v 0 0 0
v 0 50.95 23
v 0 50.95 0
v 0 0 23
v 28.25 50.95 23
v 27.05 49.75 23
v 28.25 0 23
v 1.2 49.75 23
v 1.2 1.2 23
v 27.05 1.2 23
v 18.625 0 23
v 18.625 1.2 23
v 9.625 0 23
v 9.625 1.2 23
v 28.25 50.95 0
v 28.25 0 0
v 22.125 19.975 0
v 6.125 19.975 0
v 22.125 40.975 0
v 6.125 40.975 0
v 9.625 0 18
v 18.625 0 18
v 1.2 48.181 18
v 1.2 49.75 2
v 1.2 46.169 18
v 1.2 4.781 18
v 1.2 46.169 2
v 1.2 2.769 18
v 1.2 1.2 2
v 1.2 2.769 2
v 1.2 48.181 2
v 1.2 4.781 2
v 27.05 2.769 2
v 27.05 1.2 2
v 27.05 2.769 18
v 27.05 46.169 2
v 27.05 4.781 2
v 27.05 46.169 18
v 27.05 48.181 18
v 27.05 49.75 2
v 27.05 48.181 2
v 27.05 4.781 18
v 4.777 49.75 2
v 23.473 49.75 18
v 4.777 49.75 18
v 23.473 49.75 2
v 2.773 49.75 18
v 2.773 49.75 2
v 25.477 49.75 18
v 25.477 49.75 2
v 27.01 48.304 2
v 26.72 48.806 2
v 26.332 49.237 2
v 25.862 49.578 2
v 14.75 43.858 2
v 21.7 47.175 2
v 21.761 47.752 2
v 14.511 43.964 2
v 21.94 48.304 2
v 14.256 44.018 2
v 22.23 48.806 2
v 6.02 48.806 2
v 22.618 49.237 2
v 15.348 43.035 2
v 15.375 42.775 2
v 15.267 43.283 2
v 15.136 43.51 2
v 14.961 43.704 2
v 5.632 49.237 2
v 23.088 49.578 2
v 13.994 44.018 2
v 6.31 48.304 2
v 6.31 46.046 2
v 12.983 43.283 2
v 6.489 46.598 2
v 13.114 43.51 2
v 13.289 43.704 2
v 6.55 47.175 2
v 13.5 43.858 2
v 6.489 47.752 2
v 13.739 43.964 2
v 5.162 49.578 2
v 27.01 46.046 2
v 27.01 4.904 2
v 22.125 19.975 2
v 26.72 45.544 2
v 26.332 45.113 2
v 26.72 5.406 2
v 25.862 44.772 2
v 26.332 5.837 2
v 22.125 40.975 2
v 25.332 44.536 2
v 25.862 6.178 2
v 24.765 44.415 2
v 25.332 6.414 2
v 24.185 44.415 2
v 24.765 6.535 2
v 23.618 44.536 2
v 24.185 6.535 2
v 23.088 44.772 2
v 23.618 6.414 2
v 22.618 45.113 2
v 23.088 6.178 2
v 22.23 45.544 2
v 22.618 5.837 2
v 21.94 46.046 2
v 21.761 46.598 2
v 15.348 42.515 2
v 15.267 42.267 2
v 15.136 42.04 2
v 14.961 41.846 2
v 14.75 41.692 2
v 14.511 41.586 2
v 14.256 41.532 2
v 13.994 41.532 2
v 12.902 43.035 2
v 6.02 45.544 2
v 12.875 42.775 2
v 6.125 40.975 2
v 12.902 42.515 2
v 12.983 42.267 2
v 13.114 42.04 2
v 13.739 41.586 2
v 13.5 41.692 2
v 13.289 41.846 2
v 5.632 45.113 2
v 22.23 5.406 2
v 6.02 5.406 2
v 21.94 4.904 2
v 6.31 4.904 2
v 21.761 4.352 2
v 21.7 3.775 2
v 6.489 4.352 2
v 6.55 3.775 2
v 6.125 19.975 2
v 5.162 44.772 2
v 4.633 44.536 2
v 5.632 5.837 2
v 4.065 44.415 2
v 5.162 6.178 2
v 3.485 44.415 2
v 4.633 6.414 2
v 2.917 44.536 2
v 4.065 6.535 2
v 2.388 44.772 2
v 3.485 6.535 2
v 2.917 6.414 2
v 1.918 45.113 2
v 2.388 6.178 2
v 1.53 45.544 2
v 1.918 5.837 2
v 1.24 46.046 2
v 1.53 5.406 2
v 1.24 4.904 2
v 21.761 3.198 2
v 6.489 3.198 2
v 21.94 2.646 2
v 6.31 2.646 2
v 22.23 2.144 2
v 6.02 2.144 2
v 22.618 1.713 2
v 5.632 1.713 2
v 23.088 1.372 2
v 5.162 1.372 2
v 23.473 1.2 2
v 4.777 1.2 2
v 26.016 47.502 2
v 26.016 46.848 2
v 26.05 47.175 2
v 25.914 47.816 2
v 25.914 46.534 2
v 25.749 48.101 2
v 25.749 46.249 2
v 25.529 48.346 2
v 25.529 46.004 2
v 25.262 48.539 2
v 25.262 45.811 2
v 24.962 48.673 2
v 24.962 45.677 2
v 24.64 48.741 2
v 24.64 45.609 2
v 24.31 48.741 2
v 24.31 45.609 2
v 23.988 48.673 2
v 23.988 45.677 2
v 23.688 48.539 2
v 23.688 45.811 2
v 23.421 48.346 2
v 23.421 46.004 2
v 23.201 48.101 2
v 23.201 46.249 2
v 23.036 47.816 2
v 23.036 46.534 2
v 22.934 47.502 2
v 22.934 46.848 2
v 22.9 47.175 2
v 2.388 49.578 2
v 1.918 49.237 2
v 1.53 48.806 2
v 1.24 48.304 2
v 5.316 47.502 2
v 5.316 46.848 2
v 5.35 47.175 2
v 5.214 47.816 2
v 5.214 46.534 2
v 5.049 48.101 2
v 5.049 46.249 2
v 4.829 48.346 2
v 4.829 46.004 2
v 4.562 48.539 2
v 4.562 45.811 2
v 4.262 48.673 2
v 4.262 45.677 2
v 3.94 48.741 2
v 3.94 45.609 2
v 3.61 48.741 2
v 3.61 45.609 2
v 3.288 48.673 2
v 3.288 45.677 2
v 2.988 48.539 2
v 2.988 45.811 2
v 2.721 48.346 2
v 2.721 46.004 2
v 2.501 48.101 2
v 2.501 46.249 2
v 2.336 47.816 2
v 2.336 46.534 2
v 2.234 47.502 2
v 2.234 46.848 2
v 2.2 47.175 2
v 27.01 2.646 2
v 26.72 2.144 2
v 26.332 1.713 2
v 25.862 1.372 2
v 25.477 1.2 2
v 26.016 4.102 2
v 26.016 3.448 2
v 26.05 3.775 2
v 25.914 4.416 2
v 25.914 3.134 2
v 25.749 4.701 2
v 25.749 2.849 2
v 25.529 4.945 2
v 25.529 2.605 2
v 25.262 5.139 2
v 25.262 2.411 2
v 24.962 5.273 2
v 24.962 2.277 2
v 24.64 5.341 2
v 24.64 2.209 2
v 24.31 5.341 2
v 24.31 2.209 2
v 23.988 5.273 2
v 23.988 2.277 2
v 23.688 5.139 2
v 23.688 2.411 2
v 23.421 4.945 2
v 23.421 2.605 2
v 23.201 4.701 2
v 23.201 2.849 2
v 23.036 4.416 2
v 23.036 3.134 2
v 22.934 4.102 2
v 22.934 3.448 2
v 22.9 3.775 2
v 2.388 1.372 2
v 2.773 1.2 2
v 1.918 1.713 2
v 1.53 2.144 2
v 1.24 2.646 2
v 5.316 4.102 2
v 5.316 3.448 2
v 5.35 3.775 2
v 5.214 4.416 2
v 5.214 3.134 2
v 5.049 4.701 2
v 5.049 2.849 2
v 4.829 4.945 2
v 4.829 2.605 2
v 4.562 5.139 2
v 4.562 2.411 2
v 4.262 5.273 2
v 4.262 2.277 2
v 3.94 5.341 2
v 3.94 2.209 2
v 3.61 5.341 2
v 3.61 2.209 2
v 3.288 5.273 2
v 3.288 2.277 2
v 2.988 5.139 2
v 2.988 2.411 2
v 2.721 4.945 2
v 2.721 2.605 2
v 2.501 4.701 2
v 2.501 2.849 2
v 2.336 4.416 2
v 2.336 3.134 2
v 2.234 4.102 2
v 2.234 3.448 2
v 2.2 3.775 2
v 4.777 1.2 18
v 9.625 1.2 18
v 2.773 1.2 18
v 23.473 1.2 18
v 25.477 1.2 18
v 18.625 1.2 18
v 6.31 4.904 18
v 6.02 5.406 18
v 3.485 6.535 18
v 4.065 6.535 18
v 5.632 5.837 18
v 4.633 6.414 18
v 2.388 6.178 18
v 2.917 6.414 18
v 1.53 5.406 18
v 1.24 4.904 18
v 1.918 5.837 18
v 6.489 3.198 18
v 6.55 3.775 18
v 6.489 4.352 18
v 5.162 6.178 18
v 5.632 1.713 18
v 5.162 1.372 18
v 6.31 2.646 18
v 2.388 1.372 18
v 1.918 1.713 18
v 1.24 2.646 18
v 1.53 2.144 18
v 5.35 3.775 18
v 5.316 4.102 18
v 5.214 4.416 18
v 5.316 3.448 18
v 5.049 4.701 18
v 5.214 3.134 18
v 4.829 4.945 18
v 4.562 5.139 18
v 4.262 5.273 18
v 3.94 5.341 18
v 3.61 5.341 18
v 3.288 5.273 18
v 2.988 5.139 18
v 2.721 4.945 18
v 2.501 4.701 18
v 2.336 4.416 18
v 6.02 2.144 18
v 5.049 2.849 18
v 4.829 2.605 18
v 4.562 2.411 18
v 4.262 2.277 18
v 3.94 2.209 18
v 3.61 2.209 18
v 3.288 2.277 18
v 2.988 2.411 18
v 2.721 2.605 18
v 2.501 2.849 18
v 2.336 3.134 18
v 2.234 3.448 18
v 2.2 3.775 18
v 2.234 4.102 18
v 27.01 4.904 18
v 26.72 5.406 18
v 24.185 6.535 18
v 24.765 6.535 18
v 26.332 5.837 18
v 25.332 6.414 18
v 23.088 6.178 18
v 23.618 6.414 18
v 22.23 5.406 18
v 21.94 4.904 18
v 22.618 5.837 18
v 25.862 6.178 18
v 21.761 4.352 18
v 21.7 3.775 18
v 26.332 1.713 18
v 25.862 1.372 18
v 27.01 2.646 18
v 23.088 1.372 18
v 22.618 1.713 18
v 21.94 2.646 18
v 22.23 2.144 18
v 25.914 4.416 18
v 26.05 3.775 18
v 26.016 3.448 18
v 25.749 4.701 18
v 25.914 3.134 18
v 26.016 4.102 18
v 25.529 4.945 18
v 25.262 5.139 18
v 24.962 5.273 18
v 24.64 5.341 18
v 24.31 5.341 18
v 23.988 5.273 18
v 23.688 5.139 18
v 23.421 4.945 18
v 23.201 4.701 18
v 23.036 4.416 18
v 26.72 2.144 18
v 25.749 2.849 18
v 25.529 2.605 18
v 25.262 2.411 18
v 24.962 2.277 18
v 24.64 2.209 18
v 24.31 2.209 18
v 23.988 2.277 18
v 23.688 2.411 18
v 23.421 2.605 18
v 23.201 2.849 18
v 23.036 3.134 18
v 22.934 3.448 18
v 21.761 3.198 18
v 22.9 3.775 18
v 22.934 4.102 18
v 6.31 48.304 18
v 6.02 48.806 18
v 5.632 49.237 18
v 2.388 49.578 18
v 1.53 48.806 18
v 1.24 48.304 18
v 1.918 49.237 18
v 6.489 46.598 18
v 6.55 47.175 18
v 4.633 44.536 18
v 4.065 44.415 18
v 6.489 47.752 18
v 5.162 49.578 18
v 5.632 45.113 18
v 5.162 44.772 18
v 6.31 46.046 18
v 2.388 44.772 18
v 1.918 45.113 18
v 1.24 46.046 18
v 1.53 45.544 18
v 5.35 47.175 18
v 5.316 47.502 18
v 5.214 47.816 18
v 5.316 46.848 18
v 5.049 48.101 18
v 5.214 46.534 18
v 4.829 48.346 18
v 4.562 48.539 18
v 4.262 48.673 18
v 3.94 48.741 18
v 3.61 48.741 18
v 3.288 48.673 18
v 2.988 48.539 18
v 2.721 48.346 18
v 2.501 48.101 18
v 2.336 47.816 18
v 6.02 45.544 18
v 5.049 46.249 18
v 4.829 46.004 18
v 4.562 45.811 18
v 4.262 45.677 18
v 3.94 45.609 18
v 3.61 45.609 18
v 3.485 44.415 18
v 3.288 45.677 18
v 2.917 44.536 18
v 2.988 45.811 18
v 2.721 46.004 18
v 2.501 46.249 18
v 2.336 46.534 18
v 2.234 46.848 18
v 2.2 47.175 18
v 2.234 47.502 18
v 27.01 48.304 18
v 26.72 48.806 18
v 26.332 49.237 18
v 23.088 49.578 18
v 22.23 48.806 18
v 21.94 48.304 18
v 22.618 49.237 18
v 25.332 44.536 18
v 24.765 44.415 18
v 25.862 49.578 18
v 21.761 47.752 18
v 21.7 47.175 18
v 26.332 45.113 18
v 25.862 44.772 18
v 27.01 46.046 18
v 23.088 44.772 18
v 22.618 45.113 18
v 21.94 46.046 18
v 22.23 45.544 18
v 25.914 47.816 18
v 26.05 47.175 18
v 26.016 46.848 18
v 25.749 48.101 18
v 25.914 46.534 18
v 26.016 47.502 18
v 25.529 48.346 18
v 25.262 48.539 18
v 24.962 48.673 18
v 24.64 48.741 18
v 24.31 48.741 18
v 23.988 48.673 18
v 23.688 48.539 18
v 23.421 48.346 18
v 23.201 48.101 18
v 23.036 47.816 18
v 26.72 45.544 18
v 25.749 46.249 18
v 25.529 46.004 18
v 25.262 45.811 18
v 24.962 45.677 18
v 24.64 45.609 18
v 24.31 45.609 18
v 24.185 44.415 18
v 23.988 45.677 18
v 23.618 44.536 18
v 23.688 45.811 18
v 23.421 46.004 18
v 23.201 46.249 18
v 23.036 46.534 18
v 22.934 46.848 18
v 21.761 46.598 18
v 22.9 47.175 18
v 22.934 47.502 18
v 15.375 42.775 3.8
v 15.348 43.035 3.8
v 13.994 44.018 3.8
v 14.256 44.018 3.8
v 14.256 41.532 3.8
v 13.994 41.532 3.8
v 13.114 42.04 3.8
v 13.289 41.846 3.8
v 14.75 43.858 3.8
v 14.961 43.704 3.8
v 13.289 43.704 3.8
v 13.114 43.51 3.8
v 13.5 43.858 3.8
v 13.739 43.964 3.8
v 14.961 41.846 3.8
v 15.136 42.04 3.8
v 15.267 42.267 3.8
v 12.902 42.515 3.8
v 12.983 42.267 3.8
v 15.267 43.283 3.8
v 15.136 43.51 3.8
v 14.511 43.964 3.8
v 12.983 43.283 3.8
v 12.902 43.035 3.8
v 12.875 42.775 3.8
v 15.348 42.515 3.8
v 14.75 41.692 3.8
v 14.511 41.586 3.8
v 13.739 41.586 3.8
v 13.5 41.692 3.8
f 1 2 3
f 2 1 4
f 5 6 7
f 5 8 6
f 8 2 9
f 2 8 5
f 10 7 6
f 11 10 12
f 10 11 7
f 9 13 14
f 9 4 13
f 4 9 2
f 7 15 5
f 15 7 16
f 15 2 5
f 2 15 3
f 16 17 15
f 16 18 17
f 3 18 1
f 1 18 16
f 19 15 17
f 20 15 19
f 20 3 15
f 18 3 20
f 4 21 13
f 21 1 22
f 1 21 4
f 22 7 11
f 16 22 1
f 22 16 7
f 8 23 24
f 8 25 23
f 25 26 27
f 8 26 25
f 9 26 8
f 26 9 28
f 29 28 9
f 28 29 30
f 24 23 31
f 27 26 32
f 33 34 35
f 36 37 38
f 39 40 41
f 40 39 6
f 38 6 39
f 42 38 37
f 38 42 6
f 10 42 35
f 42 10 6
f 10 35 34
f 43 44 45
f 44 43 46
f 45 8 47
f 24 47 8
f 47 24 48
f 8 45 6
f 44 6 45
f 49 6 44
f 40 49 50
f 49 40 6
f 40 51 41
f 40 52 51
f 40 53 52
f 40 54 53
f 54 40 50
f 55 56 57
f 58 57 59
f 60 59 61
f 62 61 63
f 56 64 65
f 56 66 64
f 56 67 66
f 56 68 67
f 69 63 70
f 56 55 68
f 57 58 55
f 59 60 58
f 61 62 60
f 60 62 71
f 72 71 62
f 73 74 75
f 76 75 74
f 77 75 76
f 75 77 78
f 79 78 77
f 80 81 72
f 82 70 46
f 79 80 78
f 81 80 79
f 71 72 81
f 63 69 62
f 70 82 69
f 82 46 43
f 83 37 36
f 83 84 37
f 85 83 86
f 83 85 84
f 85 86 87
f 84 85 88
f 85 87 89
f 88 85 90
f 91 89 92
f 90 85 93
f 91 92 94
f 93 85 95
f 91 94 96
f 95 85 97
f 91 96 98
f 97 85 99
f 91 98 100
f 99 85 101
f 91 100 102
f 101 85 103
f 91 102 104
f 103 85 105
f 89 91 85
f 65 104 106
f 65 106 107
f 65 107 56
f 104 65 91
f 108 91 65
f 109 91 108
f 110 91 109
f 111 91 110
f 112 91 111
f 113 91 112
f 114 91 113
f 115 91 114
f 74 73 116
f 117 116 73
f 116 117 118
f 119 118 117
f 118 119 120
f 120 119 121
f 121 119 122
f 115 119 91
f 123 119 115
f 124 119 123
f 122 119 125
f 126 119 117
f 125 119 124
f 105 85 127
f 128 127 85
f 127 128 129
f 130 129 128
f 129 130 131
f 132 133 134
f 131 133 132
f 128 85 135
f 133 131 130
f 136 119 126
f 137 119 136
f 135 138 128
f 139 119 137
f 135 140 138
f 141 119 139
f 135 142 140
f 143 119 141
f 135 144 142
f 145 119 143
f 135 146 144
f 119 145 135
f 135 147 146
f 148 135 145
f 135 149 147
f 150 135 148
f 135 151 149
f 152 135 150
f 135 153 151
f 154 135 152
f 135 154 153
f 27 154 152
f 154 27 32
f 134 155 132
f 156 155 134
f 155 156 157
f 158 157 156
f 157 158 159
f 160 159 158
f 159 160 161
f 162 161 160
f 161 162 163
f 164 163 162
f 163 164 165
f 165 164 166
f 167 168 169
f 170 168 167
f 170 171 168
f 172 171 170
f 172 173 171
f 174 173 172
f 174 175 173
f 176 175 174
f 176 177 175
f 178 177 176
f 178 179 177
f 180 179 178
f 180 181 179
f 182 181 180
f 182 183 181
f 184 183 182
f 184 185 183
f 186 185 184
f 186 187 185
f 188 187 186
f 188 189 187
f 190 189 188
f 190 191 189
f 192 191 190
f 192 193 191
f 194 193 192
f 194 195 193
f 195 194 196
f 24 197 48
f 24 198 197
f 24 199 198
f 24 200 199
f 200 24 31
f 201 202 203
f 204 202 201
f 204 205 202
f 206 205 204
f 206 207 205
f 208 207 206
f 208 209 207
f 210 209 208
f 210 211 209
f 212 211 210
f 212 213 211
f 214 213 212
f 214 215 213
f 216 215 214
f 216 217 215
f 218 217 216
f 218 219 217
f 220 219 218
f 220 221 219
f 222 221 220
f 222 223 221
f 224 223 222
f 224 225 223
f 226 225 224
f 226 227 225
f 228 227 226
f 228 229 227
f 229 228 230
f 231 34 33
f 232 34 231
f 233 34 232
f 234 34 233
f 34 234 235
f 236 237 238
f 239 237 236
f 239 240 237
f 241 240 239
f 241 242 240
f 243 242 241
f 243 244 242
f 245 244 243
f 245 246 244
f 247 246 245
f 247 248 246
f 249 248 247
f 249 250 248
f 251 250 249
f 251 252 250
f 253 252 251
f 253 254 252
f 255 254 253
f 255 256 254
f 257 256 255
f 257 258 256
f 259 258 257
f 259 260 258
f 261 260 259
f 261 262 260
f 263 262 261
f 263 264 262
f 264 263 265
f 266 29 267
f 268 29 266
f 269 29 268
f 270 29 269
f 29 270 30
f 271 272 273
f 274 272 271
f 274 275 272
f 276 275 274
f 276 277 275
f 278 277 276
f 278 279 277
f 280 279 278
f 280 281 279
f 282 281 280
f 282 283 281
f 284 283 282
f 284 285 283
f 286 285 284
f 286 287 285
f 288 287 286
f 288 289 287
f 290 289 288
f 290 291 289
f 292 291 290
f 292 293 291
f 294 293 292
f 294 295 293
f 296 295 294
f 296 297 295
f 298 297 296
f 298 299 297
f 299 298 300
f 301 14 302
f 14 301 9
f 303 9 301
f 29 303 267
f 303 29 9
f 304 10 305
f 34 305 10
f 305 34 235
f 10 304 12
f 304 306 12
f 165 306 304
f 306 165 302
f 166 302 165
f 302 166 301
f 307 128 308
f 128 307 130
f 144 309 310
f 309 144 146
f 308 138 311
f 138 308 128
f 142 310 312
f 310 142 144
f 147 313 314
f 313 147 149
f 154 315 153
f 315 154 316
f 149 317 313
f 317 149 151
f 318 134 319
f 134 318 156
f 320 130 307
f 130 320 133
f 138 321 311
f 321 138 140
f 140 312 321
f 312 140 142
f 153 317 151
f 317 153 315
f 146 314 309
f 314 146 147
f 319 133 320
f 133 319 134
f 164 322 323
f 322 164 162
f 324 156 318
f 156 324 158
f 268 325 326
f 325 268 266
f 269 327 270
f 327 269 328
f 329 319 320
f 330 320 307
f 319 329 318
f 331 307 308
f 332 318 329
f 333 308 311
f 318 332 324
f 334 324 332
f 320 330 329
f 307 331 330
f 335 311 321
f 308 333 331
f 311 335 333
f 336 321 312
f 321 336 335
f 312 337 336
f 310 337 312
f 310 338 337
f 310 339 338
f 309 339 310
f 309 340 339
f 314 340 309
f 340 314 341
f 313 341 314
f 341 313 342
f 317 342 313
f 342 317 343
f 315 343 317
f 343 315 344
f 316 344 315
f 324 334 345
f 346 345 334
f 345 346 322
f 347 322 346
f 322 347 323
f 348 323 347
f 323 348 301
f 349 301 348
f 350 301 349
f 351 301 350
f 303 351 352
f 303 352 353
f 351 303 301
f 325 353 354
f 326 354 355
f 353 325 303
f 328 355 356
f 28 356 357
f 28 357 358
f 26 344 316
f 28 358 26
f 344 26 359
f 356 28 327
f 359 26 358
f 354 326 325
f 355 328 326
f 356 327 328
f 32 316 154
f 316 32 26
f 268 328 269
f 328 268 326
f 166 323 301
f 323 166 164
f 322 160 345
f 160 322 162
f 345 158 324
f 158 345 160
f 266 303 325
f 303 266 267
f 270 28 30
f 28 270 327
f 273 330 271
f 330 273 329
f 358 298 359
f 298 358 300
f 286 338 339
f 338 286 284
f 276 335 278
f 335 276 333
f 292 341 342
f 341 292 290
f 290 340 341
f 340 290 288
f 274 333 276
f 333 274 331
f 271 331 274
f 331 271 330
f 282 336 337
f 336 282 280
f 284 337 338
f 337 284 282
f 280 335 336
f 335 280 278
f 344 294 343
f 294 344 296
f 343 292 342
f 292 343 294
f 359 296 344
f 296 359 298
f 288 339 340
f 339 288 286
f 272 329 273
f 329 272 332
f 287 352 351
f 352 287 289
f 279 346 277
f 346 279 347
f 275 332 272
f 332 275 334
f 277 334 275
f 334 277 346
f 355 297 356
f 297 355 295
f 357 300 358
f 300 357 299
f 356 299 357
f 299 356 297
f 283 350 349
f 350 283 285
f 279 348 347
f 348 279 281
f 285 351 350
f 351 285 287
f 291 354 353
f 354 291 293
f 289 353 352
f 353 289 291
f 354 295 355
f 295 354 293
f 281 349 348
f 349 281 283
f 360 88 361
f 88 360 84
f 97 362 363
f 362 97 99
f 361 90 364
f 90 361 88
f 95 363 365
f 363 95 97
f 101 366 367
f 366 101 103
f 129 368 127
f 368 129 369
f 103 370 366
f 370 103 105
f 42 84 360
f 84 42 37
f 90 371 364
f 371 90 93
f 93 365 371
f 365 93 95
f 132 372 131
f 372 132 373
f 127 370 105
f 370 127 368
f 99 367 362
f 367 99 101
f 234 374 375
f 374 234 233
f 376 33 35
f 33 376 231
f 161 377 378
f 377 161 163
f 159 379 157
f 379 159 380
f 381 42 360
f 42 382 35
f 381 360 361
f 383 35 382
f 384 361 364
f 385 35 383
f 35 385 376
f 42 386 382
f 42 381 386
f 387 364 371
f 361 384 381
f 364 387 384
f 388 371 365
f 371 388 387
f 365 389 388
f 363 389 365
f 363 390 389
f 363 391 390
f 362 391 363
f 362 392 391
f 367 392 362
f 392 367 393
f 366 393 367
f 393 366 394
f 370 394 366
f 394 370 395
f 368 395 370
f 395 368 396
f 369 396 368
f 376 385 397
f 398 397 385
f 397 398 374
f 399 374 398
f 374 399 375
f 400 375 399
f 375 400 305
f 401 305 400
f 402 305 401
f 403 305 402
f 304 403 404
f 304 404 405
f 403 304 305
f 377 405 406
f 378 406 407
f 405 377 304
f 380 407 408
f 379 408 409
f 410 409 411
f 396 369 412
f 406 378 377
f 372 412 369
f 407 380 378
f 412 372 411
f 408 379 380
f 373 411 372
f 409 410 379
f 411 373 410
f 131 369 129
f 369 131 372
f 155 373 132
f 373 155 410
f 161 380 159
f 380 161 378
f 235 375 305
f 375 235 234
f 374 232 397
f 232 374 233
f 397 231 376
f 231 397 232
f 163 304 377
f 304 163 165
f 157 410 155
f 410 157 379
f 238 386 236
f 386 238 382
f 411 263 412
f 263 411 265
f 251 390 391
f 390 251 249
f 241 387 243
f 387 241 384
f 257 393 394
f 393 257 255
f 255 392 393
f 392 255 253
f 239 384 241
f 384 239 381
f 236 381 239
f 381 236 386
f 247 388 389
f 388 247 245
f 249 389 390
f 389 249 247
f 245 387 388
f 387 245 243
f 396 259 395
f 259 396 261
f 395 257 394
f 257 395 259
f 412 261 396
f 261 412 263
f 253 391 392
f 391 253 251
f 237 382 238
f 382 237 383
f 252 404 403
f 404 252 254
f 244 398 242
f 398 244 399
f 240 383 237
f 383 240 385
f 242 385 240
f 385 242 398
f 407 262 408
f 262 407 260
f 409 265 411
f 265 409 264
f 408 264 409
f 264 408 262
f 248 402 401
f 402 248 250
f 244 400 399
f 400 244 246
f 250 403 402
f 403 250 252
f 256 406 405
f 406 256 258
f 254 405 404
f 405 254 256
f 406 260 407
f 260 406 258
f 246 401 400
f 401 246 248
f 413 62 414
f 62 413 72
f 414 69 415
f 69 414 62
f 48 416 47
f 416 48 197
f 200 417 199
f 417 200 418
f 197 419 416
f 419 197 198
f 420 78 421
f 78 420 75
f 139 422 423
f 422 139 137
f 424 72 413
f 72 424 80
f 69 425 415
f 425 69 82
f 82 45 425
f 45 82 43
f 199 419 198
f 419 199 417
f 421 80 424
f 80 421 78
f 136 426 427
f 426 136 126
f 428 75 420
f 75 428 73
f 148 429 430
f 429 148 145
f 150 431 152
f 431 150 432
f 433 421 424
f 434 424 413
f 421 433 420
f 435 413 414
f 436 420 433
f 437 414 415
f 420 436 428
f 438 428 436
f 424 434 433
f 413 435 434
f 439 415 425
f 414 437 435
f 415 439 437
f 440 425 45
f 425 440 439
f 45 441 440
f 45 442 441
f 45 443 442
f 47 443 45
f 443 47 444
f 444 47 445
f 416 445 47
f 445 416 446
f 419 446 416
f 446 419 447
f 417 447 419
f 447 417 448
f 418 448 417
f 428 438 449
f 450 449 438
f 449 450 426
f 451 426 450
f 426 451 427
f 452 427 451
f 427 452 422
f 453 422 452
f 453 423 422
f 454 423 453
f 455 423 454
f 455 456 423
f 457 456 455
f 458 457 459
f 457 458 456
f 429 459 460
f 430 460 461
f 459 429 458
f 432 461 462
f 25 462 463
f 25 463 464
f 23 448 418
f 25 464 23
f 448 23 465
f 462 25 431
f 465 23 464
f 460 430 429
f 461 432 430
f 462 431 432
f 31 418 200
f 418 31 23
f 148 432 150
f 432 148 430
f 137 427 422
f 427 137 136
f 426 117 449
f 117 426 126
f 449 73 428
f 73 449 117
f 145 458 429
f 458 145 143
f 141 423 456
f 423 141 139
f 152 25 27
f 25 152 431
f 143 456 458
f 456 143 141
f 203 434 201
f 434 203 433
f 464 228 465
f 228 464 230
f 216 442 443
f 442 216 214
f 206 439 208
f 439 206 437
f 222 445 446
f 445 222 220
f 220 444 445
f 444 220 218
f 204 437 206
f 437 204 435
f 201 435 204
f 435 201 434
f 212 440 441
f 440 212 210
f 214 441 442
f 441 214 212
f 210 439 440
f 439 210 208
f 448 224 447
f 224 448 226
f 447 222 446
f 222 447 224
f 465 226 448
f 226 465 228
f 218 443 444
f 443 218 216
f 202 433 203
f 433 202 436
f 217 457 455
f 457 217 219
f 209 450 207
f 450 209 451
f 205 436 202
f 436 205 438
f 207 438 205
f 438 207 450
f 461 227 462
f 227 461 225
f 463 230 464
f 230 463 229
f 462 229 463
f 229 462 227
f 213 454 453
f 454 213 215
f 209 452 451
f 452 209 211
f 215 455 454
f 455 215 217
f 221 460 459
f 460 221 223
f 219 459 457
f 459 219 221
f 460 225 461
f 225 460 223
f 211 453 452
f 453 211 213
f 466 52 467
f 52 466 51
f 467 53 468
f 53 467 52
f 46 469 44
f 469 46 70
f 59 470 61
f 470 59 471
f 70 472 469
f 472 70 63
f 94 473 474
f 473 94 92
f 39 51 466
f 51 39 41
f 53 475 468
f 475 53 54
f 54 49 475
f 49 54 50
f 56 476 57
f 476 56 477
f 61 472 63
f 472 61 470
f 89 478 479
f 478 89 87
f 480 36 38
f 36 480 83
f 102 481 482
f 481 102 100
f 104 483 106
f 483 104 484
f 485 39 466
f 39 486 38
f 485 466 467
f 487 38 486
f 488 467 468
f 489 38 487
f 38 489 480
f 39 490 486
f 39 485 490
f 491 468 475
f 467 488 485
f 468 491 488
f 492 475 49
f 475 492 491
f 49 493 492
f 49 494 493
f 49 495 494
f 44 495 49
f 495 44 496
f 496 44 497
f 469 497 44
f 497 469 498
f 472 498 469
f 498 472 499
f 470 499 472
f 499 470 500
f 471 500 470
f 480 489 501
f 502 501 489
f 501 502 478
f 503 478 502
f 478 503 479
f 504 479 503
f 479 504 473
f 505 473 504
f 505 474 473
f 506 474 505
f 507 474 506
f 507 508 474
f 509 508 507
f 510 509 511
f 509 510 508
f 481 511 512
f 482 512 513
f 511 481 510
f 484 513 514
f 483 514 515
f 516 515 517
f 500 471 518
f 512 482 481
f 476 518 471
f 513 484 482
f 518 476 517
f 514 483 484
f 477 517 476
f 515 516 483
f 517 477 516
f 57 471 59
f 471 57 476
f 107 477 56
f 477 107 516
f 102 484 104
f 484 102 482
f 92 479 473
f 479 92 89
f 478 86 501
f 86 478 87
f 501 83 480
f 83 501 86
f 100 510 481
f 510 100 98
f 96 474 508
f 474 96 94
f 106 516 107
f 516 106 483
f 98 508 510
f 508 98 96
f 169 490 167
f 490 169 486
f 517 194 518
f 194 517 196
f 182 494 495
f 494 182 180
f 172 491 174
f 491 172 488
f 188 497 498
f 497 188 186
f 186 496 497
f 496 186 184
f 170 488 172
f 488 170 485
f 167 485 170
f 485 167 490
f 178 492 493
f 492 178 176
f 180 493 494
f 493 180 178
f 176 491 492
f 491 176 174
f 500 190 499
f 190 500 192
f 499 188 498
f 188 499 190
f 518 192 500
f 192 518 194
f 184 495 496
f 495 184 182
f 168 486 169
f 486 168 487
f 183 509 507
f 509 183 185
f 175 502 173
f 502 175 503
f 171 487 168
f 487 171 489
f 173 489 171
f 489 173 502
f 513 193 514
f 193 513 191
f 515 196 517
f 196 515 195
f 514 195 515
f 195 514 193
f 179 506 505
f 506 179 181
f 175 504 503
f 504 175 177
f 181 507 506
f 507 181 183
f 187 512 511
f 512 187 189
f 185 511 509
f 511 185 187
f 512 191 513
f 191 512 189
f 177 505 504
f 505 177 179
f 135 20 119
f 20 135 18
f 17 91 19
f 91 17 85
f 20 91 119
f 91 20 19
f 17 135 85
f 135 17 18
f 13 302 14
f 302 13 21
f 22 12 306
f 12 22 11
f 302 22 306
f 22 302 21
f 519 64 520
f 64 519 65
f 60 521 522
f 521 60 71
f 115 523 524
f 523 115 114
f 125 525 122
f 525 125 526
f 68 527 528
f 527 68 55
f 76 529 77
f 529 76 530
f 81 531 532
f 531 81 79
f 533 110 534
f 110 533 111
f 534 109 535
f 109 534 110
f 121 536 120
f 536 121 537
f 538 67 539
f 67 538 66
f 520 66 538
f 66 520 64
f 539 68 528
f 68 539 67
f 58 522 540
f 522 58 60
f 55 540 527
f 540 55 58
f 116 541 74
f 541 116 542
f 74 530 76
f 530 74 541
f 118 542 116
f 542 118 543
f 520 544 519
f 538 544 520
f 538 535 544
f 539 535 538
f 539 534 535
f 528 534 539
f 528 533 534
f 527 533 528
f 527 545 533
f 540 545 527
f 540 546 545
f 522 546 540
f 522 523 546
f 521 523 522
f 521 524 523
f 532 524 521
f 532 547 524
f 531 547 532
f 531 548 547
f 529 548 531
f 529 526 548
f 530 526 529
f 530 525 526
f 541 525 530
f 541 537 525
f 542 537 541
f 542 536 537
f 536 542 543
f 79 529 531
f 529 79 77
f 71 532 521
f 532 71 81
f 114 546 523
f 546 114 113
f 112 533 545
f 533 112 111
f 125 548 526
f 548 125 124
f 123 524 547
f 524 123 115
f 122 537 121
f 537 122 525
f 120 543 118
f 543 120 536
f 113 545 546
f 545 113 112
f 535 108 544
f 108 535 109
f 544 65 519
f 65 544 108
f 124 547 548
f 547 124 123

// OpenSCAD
//------------------------------------------------
// 1 - body of the NodeMCU + DHT22 box
//
// author: Alessandro Paganelli 
// e-mail: alessandro.paganelli@gmail.com
// github: https://github.com/allep
// 
// Description
// This case is designed to be used with a NodeMCU 
// Amica ESP-8266 board and a DHT22 temperature
// and humidity sensor.
//
// All sizes are expressed in mm.
//------------------------------------------------

// Set face number to a sufficiently high number.
$fn = 30;

//------------------------------------------------
// Variables

//------------------------------------------------
// Box

// Inner sizes: outer size will be increased by
// the wall thickness.
Z_LEN = 21;

WALL_THICKNESS = 1.2;
BASE_THICKNESS = 2;

CYLINDER_THICKNESS = 1.2;

// For M3 screws it must be 1.5 mm + 5% tolerance
CYLINDER_RADIUS = 1.575;

// tolerances
X_GAP = 1.0;
Y_GAP = 1.0;

//------------------------------------------------
// Board size
BOARD_THICKNESS = 1.2;
BOARD_HEIGHT = 5; // including clearence

// Based on NodeMCU Amica ESP-8266 board.
SCREW_DISTANCE_Y = 43.4;
SCREW_DISTANCE_X = 20.7;

Z_USB_PORT_HEIGHT = BOARD_HEIGHT;
X_USB_PORT_LEN = 9;

//------------------------------------------------
// DHT22

X_SENSOR_LEN = 15;
Y_SENSOR_LEN = 20;
X_SENSOR_GAP = 0.5;
Y_SENSOR_GAP = 0.5;

// Used to keep track of the pins that need some
// clearance to allow cables to be connected.
Y_SENSOR_DISPLACEMENT = 5;

// Peg
SENSOR_PEG_RADIUS = 1.25;
Y_SENSOR_PEG_DISTANCE = 1.8;
Z_SENSOR_PEG_HEIGHT = 1.8;

//------------------------------------------------
// Screw sizes (M3)

Z_SCREW_LEN = 19;
Z_SCREW_HEAD_LEN = 3.5;

//------------------------------------------------
// Actual script

// First compute sizes
x_len_inner = SCREW_DISTANCE_X + 2*(CYLINDER_RADIUS + CYLINDER_THICKNESS + X_GAP - WALL_THICKNESS);
y_len_inner = SCREW_DISTANCE_Y + 2*(CYLINDER_RADIUS + CYLINDER_THICKNESS + Y_GAP - WALL_THICKNESS);
x_len_outer = x_len_inner + 2*WALL_THICKNESS;
y_len_outer = y_len_inner + 2*WALL_THICKNESS;

// actual box
difference() {
    // the box
    difference() {
        cube([x_len_outer, y_len_outer, Z_LEN + BASE_THICKNESS]);
        translate([WALL_THICKNESS, WALL_THICKNESS, BASE_THICKNESS])
        cube([x_len_inner, y_len_inner, Z_LEN]);
    }
    // the sensor hole
    translate([x_len_outer/2 - X_SENSOR_LEN/2 - X_SENSOR_GAP, y_len_outer/2 - Y_SENSOR_LEN/2 - Y_SENSOR_GAP + Y_SENSOR_DISPLACEMENT, 0])
    cube([X_SENSOR_LEN + 2*X_SENSOR_GAP, Y_SENSOR_LEN + 2*Y_SENSOR_GAP, BASE_THICKNESS]);
    // the usb port hole
    translate([x_len_outer/2 - X_USB_PORT_LEN/2, 0, Z_LEN + BASE_THICKNESS - Z_USB_PORT_HEIGHT])
    cube([X_USB_PORT_LEN, WALL_THICKNESS, Z_USB_PORT_HEIGHT]);
}

// screw cylinders
for (j = [0:1]) {
    for ( i = [0:1] ) {
        // compute the shift needed
        shift_x = i*SCREW_DISTANCE_X + CYLINDER_THICKNESS + CYLINDER_RADIUS + X_GAP;
        shift_y = j*SCREW_DISTANCE_Y + CYLINDER_THICKNESS + CYLINDER_RADIUS + Y_GAP;
        shift_z = BASE_THICKNESS;
        translate([shift_x, shift_y, shift_z])
        difference() {
            cylinder(h = Z_LEN-BOARD_HEIGHT, r = CYLINDER_RADIUS + CYLINDER_THICKNESS);
            cylinder(h = Z_LEN-BOARD_HEIGHT, r = CYLINDER_RADIUS);
        }
    }
}

// sensor peg
translate([x_len_outer/2, y_len_outer/2 + Y_SENSOR_LEN/2 + Y_SENSOR_GAP + Y_SENSOR_DISPLACEMENT + Y_SENSOR_PEG_DISTANCE, BASE_THICKNESS])
cylinder(h = Z_SENSOR_PEG_HEIGHT, r = SENSOR_PEG_RADIUS);
